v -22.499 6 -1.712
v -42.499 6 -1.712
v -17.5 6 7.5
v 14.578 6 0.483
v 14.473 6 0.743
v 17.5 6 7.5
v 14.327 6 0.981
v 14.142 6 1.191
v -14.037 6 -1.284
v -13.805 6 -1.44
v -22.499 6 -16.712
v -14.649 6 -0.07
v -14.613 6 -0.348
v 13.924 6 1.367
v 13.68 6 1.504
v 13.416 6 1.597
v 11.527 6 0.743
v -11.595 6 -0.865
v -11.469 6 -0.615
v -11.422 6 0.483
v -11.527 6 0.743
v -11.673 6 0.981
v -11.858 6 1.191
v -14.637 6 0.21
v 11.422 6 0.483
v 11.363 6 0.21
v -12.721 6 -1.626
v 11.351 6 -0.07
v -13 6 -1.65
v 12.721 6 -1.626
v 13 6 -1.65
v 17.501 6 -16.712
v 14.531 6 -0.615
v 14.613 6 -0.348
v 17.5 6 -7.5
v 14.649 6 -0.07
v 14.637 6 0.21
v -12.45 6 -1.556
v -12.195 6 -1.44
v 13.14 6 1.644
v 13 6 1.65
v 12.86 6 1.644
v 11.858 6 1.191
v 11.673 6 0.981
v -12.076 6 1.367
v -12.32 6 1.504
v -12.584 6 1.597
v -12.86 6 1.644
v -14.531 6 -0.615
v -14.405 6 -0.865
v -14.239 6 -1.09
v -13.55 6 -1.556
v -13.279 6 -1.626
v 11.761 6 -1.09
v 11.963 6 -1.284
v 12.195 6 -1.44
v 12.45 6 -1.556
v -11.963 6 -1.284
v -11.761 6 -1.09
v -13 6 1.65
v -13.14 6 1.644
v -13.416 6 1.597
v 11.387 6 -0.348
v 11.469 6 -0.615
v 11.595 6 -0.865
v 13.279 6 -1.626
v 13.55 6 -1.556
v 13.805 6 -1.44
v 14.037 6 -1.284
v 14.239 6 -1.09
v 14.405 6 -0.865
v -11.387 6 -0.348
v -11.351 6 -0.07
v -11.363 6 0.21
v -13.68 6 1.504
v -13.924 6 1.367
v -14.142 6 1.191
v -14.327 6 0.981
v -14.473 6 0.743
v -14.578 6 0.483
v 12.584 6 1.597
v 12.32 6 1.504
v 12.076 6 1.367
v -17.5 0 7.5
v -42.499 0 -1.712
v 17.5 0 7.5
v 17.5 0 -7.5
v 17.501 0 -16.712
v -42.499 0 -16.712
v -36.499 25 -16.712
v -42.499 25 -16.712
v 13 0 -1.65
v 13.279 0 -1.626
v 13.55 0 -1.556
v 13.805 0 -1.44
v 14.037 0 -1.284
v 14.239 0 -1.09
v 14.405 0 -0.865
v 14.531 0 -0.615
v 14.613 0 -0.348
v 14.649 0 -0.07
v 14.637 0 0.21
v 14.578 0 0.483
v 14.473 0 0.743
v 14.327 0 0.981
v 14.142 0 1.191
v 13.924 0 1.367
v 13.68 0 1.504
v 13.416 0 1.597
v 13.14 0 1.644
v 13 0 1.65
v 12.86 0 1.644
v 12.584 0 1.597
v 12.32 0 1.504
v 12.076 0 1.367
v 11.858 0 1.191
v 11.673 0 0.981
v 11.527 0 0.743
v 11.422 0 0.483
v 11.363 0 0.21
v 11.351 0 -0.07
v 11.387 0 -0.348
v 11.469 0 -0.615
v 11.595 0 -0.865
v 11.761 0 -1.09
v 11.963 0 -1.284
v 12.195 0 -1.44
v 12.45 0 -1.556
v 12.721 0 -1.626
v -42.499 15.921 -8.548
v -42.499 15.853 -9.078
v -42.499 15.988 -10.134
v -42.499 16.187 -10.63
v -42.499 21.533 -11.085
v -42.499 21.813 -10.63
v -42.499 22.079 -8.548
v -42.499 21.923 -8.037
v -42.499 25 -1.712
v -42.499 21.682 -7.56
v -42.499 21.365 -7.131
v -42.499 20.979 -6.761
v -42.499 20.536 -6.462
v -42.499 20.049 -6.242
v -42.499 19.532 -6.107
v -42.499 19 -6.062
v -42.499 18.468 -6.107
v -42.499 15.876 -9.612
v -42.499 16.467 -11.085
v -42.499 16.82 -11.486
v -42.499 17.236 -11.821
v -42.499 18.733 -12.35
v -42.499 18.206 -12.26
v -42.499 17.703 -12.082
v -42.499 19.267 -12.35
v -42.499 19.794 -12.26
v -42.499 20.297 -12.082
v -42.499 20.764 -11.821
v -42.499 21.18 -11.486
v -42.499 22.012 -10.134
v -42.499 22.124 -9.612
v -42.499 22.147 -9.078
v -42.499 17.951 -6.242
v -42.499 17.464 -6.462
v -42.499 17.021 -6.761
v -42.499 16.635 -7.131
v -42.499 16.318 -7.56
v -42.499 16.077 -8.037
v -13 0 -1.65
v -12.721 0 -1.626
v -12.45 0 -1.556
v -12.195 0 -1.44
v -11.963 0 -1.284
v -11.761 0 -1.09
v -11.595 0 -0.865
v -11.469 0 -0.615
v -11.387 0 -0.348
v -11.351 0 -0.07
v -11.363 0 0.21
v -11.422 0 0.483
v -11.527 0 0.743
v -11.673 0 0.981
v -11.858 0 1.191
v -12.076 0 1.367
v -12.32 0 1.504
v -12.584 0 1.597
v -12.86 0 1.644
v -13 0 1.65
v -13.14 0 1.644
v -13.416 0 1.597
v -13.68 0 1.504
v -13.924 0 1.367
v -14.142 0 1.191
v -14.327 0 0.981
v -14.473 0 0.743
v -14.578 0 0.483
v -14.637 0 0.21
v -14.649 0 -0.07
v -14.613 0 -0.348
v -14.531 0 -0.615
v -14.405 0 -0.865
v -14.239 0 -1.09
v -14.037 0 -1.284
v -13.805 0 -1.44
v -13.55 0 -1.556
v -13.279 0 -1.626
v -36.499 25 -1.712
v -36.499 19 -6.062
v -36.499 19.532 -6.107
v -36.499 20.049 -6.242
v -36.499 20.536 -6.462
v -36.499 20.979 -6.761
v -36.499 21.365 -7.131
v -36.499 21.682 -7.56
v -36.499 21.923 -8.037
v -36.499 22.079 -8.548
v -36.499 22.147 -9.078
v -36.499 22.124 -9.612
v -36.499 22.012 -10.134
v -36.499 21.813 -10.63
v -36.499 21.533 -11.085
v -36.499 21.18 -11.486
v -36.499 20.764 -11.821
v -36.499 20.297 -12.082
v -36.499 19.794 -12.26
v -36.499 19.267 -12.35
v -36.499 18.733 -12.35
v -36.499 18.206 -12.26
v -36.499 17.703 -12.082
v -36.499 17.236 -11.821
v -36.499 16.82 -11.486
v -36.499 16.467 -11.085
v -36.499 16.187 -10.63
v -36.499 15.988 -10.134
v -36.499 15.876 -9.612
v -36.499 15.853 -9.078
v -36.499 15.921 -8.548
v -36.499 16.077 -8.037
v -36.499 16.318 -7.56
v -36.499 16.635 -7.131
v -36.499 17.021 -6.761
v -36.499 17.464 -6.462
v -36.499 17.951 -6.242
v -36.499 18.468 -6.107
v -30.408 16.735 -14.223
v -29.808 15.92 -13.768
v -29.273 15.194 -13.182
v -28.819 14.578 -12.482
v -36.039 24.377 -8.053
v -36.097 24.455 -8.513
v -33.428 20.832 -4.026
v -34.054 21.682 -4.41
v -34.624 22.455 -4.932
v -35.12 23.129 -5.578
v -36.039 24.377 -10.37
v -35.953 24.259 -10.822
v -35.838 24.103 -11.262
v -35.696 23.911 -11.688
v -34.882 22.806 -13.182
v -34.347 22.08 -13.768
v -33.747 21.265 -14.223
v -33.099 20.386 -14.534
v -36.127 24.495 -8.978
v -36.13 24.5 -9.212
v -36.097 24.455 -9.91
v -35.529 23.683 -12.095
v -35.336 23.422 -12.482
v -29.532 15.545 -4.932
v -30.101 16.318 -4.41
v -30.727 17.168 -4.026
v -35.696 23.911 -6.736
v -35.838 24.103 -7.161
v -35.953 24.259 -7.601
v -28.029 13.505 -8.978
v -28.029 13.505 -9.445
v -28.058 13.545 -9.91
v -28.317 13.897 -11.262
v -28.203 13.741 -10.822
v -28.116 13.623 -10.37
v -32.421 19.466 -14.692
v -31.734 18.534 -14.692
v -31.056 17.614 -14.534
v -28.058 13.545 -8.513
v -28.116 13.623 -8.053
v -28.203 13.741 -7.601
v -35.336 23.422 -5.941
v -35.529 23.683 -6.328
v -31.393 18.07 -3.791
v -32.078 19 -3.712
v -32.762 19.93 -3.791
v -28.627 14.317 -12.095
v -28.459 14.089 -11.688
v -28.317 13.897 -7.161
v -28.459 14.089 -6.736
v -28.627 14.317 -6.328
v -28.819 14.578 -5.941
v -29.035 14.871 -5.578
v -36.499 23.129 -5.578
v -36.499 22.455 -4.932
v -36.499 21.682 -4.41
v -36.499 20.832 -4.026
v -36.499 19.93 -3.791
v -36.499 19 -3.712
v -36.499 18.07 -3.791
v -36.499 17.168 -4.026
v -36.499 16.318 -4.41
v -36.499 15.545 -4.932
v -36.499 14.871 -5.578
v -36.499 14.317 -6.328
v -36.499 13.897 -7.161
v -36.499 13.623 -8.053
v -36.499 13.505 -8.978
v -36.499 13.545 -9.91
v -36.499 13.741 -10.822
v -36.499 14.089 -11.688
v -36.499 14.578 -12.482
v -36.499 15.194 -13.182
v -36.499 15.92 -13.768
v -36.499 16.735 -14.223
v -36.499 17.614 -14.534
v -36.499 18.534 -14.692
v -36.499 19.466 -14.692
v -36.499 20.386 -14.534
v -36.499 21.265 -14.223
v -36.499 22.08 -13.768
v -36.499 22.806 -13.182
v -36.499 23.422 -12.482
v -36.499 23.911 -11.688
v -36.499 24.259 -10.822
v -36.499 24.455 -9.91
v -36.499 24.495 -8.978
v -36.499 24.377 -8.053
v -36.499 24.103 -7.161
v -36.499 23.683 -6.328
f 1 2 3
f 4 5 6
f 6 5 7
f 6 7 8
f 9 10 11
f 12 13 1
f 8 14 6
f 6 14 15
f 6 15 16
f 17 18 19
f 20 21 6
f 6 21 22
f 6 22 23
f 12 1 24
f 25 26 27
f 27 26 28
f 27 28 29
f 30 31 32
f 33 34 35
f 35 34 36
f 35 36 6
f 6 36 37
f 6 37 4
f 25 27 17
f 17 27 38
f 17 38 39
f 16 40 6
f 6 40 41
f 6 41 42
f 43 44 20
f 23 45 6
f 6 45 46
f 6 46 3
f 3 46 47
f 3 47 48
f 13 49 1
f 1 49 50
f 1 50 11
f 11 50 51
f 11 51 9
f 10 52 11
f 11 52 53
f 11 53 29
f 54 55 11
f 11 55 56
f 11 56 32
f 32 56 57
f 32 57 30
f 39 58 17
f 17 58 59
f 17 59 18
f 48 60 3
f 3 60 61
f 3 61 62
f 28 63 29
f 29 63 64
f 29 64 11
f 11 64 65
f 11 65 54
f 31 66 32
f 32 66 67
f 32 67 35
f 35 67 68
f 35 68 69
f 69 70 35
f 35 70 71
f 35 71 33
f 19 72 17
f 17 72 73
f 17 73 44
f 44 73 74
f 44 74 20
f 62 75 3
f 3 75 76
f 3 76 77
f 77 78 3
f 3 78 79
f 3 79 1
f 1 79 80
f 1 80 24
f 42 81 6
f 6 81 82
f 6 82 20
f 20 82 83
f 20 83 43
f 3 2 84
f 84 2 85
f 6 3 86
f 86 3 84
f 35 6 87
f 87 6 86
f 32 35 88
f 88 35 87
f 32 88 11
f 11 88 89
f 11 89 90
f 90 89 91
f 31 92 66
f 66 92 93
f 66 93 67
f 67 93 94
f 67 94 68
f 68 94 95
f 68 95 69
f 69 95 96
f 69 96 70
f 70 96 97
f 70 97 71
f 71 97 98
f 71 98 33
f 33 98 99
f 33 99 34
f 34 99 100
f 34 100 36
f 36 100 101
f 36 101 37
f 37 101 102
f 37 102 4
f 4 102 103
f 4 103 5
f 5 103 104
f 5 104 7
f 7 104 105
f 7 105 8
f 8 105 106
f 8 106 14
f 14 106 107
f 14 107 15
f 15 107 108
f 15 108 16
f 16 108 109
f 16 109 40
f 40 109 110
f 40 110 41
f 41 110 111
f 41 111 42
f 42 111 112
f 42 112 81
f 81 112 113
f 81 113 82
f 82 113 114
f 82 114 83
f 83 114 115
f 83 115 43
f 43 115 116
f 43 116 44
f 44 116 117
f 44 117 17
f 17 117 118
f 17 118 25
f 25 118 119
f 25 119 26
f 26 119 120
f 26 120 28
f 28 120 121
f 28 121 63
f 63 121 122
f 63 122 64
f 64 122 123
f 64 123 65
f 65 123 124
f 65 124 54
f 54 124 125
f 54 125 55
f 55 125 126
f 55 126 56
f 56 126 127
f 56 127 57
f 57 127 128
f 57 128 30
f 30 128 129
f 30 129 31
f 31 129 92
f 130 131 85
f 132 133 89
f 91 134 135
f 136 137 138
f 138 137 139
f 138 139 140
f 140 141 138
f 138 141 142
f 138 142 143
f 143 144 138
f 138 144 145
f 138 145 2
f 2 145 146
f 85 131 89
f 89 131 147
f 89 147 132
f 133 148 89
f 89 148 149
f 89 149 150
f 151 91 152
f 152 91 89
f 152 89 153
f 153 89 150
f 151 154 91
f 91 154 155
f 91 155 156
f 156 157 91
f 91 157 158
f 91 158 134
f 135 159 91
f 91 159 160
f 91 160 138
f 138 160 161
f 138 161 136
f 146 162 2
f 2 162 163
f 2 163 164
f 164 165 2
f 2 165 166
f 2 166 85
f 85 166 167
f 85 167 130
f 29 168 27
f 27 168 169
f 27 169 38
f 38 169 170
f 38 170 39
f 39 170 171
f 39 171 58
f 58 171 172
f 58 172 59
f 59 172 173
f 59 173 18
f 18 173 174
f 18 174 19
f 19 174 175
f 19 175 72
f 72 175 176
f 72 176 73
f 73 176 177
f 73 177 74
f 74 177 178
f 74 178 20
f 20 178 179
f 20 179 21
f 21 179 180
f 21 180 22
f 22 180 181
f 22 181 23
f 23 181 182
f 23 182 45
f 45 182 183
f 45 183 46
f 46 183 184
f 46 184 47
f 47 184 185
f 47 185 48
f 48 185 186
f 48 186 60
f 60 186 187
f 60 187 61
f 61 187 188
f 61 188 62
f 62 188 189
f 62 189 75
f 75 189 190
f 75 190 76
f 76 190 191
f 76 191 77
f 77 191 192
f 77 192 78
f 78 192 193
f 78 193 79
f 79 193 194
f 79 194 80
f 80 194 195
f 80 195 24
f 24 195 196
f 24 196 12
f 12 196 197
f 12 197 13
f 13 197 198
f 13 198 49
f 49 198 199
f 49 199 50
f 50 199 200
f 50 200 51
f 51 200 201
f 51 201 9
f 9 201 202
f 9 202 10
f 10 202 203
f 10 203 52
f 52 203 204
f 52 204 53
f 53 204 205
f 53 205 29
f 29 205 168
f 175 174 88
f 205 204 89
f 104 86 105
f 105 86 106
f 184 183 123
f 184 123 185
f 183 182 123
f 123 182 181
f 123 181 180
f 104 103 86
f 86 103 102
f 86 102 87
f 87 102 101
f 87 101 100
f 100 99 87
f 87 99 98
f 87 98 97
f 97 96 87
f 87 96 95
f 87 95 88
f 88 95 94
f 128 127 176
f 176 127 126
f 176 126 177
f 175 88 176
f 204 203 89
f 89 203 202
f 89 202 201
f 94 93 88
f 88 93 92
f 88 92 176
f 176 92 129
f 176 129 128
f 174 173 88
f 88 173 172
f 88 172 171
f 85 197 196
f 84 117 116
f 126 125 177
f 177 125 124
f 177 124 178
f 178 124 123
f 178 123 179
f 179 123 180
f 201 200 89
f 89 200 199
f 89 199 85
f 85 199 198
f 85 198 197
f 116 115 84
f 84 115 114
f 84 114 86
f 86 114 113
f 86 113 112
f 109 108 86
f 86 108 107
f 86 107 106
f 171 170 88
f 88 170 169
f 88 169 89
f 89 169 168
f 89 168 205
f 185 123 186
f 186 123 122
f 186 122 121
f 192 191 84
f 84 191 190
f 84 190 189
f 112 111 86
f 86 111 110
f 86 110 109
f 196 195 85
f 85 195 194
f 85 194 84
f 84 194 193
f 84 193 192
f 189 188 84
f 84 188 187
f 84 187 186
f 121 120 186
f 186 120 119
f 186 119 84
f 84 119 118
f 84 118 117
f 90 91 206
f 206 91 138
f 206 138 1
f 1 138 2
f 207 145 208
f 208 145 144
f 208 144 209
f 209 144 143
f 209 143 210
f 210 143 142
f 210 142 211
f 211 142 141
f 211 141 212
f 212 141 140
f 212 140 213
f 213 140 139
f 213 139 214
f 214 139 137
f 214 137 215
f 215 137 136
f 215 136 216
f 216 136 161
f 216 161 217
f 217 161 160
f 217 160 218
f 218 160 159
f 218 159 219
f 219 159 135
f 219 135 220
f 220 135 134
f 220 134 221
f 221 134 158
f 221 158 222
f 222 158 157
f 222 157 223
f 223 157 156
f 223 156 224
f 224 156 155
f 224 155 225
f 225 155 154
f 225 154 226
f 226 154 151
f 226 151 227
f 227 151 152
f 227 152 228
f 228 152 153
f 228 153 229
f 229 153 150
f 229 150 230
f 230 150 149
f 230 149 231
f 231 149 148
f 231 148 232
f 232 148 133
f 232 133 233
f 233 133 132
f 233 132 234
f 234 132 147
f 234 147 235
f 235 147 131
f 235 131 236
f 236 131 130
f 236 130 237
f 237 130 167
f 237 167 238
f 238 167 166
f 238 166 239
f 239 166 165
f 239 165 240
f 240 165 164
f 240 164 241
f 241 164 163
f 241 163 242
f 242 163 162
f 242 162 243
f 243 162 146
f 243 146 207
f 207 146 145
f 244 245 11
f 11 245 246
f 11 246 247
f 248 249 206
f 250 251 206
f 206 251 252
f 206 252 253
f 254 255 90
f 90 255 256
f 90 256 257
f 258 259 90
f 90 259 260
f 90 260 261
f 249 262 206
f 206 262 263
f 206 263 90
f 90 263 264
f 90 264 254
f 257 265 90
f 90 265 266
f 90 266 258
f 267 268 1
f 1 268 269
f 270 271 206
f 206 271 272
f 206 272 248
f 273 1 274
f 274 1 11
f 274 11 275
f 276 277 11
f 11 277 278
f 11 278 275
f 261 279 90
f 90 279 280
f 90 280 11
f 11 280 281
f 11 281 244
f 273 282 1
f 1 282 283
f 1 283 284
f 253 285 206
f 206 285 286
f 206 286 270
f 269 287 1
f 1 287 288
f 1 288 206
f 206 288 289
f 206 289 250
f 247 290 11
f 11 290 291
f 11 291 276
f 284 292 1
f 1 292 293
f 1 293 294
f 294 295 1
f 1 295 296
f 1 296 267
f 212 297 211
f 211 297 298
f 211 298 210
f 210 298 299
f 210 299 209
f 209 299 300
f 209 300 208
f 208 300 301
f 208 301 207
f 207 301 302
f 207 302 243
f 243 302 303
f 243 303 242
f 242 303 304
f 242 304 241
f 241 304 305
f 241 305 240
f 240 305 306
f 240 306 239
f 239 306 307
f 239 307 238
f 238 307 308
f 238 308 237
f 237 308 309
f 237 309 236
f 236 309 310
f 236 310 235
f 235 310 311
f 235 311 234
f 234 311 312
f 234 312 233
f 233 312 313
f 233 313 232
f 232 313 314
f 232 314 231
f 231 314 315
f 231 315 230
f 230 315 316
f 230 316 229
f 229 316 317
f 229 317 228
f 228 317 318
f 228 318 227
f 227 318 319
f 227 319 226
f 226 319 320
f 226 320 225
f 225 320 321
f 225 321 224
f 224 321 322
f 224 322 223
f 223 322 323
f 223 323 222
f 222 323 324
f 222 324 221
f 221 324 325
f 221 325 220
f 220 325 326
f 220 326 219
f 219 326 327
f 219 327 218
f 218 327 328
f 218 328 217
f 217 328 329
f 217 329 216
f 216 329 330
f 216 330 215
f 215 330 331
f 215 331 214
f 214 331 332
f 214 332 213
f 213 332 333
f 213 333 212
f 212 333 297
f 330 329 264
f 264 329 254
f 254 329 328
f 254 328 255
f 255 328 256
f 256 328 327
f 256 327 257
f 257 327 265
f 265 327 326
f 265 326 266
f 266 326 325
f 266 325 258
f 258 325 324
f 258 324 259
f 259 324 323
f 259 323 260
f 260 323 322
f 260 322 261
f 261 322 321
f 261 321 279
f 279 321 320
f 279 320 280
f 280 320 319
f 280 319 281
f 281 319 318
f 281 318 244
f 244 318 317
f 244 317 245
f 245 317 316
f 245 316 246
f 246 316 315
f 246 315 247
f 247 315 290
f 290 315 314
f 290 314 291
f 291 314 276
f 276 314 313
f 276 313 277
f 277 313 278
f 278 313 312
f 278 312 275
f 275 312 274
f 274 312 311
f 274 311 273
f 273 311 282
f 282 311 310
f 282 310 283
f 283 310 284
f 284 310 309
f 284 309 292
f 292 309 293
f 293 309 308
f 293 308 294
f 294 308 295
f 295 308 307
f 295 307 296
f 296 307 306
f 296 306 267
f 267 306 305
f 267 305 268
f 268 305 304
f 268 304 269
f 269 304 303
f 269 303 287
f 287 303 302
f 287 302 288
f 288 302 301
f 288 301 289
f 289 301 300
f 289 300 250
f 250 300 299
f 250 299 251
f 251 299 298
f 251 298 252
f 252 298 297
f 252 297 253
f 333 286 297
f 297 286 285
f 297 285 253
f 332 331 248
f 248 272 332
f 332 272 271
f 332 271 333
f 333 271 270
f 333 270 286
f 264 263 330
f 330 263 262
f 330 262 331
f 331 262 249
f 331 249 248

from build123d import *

# Parameters (mm, degrees)
SKETCH1_R           = 1.65
BOSS_EXTRUDE1_DEPTH = 6
SKETCH2_W           = 15
SKETCH2_H           = 25
SKETCH2_R           = 3.15
BOSS_EXTRUDE2_DEPTH = 20
CUT_EXTRUDE1_DEPTH  = 52.537692211
SKETCH5_R           = 5.5
CUT_EXTRUDE2_DEPTH  = 62.80841078


with BuildPart() as part:
    # Sketch1 → Boss-Extrude1 (new body)
    with BuildSketch(Plane(origin=(0, 0, 0), x_dir=(1, 0, 0), z_dir=(0, 1, 0))):
        Polygon((-17.5, -7.5), (17.5, -7.5), (17.5, 7.5), (17.50136804, 16.71166189), (-42.49863196, 16.71166189), (-42.49863196, 1.71166189), align=None)
        with Locations(Location((-13, 0, 0), (0, 0, 270))):
            Circle(SKETCH1_R, mode=Mode.SUBTRACT)
        with Locations(Location((13, 0, 0), (0, 0, 270))):
            Circle(SKETCH1_R, mode=Mode.SUBTRACT)
    extrude(amount=BOSS_EXTRUDE1_DEPTH)

    # Sketch2 → Boss-Extrude2 (add)
    with BuildSketch(Plane.ZY.offset(42.49863196)):
        with Locations((-9.21166189, 12.5)):
            Rectangle(SKETCH2_W, SKETCH2_H)
        with Locations((-9.21166189, 19)):
            Circle(SKETCH2_R, mode=Mode.SUBTRACT)
    extrude(amount=-BOSS_EXTRUDE2_DEPTH)

    # Sketch4 → Cut-Extrude1 (cut, through all)
    with BuildSketch(Plane.XY.offset(-1.71166189)):
        Polygon((-36.49863196, 25), (-22.49863196, 6), (-22.49863196, 25), align=None)
    extrude(amount=-CUT_EXTRUDE1_DEPTH, mode=Mode.SUBTRACT)

    # Sketch5 → Cut-Extrude2 (cut, through all)
    with BuildSketch(Plane.ZY.offset(36.49863196)):
        with Locations((-9.21166189, 19)):
            Circle(SKETCH5_R)
    extrude(amount=-CUT_EXTRUDE2_DEPTH, mode=Mode.SUBTRACT)


solid = part.part
